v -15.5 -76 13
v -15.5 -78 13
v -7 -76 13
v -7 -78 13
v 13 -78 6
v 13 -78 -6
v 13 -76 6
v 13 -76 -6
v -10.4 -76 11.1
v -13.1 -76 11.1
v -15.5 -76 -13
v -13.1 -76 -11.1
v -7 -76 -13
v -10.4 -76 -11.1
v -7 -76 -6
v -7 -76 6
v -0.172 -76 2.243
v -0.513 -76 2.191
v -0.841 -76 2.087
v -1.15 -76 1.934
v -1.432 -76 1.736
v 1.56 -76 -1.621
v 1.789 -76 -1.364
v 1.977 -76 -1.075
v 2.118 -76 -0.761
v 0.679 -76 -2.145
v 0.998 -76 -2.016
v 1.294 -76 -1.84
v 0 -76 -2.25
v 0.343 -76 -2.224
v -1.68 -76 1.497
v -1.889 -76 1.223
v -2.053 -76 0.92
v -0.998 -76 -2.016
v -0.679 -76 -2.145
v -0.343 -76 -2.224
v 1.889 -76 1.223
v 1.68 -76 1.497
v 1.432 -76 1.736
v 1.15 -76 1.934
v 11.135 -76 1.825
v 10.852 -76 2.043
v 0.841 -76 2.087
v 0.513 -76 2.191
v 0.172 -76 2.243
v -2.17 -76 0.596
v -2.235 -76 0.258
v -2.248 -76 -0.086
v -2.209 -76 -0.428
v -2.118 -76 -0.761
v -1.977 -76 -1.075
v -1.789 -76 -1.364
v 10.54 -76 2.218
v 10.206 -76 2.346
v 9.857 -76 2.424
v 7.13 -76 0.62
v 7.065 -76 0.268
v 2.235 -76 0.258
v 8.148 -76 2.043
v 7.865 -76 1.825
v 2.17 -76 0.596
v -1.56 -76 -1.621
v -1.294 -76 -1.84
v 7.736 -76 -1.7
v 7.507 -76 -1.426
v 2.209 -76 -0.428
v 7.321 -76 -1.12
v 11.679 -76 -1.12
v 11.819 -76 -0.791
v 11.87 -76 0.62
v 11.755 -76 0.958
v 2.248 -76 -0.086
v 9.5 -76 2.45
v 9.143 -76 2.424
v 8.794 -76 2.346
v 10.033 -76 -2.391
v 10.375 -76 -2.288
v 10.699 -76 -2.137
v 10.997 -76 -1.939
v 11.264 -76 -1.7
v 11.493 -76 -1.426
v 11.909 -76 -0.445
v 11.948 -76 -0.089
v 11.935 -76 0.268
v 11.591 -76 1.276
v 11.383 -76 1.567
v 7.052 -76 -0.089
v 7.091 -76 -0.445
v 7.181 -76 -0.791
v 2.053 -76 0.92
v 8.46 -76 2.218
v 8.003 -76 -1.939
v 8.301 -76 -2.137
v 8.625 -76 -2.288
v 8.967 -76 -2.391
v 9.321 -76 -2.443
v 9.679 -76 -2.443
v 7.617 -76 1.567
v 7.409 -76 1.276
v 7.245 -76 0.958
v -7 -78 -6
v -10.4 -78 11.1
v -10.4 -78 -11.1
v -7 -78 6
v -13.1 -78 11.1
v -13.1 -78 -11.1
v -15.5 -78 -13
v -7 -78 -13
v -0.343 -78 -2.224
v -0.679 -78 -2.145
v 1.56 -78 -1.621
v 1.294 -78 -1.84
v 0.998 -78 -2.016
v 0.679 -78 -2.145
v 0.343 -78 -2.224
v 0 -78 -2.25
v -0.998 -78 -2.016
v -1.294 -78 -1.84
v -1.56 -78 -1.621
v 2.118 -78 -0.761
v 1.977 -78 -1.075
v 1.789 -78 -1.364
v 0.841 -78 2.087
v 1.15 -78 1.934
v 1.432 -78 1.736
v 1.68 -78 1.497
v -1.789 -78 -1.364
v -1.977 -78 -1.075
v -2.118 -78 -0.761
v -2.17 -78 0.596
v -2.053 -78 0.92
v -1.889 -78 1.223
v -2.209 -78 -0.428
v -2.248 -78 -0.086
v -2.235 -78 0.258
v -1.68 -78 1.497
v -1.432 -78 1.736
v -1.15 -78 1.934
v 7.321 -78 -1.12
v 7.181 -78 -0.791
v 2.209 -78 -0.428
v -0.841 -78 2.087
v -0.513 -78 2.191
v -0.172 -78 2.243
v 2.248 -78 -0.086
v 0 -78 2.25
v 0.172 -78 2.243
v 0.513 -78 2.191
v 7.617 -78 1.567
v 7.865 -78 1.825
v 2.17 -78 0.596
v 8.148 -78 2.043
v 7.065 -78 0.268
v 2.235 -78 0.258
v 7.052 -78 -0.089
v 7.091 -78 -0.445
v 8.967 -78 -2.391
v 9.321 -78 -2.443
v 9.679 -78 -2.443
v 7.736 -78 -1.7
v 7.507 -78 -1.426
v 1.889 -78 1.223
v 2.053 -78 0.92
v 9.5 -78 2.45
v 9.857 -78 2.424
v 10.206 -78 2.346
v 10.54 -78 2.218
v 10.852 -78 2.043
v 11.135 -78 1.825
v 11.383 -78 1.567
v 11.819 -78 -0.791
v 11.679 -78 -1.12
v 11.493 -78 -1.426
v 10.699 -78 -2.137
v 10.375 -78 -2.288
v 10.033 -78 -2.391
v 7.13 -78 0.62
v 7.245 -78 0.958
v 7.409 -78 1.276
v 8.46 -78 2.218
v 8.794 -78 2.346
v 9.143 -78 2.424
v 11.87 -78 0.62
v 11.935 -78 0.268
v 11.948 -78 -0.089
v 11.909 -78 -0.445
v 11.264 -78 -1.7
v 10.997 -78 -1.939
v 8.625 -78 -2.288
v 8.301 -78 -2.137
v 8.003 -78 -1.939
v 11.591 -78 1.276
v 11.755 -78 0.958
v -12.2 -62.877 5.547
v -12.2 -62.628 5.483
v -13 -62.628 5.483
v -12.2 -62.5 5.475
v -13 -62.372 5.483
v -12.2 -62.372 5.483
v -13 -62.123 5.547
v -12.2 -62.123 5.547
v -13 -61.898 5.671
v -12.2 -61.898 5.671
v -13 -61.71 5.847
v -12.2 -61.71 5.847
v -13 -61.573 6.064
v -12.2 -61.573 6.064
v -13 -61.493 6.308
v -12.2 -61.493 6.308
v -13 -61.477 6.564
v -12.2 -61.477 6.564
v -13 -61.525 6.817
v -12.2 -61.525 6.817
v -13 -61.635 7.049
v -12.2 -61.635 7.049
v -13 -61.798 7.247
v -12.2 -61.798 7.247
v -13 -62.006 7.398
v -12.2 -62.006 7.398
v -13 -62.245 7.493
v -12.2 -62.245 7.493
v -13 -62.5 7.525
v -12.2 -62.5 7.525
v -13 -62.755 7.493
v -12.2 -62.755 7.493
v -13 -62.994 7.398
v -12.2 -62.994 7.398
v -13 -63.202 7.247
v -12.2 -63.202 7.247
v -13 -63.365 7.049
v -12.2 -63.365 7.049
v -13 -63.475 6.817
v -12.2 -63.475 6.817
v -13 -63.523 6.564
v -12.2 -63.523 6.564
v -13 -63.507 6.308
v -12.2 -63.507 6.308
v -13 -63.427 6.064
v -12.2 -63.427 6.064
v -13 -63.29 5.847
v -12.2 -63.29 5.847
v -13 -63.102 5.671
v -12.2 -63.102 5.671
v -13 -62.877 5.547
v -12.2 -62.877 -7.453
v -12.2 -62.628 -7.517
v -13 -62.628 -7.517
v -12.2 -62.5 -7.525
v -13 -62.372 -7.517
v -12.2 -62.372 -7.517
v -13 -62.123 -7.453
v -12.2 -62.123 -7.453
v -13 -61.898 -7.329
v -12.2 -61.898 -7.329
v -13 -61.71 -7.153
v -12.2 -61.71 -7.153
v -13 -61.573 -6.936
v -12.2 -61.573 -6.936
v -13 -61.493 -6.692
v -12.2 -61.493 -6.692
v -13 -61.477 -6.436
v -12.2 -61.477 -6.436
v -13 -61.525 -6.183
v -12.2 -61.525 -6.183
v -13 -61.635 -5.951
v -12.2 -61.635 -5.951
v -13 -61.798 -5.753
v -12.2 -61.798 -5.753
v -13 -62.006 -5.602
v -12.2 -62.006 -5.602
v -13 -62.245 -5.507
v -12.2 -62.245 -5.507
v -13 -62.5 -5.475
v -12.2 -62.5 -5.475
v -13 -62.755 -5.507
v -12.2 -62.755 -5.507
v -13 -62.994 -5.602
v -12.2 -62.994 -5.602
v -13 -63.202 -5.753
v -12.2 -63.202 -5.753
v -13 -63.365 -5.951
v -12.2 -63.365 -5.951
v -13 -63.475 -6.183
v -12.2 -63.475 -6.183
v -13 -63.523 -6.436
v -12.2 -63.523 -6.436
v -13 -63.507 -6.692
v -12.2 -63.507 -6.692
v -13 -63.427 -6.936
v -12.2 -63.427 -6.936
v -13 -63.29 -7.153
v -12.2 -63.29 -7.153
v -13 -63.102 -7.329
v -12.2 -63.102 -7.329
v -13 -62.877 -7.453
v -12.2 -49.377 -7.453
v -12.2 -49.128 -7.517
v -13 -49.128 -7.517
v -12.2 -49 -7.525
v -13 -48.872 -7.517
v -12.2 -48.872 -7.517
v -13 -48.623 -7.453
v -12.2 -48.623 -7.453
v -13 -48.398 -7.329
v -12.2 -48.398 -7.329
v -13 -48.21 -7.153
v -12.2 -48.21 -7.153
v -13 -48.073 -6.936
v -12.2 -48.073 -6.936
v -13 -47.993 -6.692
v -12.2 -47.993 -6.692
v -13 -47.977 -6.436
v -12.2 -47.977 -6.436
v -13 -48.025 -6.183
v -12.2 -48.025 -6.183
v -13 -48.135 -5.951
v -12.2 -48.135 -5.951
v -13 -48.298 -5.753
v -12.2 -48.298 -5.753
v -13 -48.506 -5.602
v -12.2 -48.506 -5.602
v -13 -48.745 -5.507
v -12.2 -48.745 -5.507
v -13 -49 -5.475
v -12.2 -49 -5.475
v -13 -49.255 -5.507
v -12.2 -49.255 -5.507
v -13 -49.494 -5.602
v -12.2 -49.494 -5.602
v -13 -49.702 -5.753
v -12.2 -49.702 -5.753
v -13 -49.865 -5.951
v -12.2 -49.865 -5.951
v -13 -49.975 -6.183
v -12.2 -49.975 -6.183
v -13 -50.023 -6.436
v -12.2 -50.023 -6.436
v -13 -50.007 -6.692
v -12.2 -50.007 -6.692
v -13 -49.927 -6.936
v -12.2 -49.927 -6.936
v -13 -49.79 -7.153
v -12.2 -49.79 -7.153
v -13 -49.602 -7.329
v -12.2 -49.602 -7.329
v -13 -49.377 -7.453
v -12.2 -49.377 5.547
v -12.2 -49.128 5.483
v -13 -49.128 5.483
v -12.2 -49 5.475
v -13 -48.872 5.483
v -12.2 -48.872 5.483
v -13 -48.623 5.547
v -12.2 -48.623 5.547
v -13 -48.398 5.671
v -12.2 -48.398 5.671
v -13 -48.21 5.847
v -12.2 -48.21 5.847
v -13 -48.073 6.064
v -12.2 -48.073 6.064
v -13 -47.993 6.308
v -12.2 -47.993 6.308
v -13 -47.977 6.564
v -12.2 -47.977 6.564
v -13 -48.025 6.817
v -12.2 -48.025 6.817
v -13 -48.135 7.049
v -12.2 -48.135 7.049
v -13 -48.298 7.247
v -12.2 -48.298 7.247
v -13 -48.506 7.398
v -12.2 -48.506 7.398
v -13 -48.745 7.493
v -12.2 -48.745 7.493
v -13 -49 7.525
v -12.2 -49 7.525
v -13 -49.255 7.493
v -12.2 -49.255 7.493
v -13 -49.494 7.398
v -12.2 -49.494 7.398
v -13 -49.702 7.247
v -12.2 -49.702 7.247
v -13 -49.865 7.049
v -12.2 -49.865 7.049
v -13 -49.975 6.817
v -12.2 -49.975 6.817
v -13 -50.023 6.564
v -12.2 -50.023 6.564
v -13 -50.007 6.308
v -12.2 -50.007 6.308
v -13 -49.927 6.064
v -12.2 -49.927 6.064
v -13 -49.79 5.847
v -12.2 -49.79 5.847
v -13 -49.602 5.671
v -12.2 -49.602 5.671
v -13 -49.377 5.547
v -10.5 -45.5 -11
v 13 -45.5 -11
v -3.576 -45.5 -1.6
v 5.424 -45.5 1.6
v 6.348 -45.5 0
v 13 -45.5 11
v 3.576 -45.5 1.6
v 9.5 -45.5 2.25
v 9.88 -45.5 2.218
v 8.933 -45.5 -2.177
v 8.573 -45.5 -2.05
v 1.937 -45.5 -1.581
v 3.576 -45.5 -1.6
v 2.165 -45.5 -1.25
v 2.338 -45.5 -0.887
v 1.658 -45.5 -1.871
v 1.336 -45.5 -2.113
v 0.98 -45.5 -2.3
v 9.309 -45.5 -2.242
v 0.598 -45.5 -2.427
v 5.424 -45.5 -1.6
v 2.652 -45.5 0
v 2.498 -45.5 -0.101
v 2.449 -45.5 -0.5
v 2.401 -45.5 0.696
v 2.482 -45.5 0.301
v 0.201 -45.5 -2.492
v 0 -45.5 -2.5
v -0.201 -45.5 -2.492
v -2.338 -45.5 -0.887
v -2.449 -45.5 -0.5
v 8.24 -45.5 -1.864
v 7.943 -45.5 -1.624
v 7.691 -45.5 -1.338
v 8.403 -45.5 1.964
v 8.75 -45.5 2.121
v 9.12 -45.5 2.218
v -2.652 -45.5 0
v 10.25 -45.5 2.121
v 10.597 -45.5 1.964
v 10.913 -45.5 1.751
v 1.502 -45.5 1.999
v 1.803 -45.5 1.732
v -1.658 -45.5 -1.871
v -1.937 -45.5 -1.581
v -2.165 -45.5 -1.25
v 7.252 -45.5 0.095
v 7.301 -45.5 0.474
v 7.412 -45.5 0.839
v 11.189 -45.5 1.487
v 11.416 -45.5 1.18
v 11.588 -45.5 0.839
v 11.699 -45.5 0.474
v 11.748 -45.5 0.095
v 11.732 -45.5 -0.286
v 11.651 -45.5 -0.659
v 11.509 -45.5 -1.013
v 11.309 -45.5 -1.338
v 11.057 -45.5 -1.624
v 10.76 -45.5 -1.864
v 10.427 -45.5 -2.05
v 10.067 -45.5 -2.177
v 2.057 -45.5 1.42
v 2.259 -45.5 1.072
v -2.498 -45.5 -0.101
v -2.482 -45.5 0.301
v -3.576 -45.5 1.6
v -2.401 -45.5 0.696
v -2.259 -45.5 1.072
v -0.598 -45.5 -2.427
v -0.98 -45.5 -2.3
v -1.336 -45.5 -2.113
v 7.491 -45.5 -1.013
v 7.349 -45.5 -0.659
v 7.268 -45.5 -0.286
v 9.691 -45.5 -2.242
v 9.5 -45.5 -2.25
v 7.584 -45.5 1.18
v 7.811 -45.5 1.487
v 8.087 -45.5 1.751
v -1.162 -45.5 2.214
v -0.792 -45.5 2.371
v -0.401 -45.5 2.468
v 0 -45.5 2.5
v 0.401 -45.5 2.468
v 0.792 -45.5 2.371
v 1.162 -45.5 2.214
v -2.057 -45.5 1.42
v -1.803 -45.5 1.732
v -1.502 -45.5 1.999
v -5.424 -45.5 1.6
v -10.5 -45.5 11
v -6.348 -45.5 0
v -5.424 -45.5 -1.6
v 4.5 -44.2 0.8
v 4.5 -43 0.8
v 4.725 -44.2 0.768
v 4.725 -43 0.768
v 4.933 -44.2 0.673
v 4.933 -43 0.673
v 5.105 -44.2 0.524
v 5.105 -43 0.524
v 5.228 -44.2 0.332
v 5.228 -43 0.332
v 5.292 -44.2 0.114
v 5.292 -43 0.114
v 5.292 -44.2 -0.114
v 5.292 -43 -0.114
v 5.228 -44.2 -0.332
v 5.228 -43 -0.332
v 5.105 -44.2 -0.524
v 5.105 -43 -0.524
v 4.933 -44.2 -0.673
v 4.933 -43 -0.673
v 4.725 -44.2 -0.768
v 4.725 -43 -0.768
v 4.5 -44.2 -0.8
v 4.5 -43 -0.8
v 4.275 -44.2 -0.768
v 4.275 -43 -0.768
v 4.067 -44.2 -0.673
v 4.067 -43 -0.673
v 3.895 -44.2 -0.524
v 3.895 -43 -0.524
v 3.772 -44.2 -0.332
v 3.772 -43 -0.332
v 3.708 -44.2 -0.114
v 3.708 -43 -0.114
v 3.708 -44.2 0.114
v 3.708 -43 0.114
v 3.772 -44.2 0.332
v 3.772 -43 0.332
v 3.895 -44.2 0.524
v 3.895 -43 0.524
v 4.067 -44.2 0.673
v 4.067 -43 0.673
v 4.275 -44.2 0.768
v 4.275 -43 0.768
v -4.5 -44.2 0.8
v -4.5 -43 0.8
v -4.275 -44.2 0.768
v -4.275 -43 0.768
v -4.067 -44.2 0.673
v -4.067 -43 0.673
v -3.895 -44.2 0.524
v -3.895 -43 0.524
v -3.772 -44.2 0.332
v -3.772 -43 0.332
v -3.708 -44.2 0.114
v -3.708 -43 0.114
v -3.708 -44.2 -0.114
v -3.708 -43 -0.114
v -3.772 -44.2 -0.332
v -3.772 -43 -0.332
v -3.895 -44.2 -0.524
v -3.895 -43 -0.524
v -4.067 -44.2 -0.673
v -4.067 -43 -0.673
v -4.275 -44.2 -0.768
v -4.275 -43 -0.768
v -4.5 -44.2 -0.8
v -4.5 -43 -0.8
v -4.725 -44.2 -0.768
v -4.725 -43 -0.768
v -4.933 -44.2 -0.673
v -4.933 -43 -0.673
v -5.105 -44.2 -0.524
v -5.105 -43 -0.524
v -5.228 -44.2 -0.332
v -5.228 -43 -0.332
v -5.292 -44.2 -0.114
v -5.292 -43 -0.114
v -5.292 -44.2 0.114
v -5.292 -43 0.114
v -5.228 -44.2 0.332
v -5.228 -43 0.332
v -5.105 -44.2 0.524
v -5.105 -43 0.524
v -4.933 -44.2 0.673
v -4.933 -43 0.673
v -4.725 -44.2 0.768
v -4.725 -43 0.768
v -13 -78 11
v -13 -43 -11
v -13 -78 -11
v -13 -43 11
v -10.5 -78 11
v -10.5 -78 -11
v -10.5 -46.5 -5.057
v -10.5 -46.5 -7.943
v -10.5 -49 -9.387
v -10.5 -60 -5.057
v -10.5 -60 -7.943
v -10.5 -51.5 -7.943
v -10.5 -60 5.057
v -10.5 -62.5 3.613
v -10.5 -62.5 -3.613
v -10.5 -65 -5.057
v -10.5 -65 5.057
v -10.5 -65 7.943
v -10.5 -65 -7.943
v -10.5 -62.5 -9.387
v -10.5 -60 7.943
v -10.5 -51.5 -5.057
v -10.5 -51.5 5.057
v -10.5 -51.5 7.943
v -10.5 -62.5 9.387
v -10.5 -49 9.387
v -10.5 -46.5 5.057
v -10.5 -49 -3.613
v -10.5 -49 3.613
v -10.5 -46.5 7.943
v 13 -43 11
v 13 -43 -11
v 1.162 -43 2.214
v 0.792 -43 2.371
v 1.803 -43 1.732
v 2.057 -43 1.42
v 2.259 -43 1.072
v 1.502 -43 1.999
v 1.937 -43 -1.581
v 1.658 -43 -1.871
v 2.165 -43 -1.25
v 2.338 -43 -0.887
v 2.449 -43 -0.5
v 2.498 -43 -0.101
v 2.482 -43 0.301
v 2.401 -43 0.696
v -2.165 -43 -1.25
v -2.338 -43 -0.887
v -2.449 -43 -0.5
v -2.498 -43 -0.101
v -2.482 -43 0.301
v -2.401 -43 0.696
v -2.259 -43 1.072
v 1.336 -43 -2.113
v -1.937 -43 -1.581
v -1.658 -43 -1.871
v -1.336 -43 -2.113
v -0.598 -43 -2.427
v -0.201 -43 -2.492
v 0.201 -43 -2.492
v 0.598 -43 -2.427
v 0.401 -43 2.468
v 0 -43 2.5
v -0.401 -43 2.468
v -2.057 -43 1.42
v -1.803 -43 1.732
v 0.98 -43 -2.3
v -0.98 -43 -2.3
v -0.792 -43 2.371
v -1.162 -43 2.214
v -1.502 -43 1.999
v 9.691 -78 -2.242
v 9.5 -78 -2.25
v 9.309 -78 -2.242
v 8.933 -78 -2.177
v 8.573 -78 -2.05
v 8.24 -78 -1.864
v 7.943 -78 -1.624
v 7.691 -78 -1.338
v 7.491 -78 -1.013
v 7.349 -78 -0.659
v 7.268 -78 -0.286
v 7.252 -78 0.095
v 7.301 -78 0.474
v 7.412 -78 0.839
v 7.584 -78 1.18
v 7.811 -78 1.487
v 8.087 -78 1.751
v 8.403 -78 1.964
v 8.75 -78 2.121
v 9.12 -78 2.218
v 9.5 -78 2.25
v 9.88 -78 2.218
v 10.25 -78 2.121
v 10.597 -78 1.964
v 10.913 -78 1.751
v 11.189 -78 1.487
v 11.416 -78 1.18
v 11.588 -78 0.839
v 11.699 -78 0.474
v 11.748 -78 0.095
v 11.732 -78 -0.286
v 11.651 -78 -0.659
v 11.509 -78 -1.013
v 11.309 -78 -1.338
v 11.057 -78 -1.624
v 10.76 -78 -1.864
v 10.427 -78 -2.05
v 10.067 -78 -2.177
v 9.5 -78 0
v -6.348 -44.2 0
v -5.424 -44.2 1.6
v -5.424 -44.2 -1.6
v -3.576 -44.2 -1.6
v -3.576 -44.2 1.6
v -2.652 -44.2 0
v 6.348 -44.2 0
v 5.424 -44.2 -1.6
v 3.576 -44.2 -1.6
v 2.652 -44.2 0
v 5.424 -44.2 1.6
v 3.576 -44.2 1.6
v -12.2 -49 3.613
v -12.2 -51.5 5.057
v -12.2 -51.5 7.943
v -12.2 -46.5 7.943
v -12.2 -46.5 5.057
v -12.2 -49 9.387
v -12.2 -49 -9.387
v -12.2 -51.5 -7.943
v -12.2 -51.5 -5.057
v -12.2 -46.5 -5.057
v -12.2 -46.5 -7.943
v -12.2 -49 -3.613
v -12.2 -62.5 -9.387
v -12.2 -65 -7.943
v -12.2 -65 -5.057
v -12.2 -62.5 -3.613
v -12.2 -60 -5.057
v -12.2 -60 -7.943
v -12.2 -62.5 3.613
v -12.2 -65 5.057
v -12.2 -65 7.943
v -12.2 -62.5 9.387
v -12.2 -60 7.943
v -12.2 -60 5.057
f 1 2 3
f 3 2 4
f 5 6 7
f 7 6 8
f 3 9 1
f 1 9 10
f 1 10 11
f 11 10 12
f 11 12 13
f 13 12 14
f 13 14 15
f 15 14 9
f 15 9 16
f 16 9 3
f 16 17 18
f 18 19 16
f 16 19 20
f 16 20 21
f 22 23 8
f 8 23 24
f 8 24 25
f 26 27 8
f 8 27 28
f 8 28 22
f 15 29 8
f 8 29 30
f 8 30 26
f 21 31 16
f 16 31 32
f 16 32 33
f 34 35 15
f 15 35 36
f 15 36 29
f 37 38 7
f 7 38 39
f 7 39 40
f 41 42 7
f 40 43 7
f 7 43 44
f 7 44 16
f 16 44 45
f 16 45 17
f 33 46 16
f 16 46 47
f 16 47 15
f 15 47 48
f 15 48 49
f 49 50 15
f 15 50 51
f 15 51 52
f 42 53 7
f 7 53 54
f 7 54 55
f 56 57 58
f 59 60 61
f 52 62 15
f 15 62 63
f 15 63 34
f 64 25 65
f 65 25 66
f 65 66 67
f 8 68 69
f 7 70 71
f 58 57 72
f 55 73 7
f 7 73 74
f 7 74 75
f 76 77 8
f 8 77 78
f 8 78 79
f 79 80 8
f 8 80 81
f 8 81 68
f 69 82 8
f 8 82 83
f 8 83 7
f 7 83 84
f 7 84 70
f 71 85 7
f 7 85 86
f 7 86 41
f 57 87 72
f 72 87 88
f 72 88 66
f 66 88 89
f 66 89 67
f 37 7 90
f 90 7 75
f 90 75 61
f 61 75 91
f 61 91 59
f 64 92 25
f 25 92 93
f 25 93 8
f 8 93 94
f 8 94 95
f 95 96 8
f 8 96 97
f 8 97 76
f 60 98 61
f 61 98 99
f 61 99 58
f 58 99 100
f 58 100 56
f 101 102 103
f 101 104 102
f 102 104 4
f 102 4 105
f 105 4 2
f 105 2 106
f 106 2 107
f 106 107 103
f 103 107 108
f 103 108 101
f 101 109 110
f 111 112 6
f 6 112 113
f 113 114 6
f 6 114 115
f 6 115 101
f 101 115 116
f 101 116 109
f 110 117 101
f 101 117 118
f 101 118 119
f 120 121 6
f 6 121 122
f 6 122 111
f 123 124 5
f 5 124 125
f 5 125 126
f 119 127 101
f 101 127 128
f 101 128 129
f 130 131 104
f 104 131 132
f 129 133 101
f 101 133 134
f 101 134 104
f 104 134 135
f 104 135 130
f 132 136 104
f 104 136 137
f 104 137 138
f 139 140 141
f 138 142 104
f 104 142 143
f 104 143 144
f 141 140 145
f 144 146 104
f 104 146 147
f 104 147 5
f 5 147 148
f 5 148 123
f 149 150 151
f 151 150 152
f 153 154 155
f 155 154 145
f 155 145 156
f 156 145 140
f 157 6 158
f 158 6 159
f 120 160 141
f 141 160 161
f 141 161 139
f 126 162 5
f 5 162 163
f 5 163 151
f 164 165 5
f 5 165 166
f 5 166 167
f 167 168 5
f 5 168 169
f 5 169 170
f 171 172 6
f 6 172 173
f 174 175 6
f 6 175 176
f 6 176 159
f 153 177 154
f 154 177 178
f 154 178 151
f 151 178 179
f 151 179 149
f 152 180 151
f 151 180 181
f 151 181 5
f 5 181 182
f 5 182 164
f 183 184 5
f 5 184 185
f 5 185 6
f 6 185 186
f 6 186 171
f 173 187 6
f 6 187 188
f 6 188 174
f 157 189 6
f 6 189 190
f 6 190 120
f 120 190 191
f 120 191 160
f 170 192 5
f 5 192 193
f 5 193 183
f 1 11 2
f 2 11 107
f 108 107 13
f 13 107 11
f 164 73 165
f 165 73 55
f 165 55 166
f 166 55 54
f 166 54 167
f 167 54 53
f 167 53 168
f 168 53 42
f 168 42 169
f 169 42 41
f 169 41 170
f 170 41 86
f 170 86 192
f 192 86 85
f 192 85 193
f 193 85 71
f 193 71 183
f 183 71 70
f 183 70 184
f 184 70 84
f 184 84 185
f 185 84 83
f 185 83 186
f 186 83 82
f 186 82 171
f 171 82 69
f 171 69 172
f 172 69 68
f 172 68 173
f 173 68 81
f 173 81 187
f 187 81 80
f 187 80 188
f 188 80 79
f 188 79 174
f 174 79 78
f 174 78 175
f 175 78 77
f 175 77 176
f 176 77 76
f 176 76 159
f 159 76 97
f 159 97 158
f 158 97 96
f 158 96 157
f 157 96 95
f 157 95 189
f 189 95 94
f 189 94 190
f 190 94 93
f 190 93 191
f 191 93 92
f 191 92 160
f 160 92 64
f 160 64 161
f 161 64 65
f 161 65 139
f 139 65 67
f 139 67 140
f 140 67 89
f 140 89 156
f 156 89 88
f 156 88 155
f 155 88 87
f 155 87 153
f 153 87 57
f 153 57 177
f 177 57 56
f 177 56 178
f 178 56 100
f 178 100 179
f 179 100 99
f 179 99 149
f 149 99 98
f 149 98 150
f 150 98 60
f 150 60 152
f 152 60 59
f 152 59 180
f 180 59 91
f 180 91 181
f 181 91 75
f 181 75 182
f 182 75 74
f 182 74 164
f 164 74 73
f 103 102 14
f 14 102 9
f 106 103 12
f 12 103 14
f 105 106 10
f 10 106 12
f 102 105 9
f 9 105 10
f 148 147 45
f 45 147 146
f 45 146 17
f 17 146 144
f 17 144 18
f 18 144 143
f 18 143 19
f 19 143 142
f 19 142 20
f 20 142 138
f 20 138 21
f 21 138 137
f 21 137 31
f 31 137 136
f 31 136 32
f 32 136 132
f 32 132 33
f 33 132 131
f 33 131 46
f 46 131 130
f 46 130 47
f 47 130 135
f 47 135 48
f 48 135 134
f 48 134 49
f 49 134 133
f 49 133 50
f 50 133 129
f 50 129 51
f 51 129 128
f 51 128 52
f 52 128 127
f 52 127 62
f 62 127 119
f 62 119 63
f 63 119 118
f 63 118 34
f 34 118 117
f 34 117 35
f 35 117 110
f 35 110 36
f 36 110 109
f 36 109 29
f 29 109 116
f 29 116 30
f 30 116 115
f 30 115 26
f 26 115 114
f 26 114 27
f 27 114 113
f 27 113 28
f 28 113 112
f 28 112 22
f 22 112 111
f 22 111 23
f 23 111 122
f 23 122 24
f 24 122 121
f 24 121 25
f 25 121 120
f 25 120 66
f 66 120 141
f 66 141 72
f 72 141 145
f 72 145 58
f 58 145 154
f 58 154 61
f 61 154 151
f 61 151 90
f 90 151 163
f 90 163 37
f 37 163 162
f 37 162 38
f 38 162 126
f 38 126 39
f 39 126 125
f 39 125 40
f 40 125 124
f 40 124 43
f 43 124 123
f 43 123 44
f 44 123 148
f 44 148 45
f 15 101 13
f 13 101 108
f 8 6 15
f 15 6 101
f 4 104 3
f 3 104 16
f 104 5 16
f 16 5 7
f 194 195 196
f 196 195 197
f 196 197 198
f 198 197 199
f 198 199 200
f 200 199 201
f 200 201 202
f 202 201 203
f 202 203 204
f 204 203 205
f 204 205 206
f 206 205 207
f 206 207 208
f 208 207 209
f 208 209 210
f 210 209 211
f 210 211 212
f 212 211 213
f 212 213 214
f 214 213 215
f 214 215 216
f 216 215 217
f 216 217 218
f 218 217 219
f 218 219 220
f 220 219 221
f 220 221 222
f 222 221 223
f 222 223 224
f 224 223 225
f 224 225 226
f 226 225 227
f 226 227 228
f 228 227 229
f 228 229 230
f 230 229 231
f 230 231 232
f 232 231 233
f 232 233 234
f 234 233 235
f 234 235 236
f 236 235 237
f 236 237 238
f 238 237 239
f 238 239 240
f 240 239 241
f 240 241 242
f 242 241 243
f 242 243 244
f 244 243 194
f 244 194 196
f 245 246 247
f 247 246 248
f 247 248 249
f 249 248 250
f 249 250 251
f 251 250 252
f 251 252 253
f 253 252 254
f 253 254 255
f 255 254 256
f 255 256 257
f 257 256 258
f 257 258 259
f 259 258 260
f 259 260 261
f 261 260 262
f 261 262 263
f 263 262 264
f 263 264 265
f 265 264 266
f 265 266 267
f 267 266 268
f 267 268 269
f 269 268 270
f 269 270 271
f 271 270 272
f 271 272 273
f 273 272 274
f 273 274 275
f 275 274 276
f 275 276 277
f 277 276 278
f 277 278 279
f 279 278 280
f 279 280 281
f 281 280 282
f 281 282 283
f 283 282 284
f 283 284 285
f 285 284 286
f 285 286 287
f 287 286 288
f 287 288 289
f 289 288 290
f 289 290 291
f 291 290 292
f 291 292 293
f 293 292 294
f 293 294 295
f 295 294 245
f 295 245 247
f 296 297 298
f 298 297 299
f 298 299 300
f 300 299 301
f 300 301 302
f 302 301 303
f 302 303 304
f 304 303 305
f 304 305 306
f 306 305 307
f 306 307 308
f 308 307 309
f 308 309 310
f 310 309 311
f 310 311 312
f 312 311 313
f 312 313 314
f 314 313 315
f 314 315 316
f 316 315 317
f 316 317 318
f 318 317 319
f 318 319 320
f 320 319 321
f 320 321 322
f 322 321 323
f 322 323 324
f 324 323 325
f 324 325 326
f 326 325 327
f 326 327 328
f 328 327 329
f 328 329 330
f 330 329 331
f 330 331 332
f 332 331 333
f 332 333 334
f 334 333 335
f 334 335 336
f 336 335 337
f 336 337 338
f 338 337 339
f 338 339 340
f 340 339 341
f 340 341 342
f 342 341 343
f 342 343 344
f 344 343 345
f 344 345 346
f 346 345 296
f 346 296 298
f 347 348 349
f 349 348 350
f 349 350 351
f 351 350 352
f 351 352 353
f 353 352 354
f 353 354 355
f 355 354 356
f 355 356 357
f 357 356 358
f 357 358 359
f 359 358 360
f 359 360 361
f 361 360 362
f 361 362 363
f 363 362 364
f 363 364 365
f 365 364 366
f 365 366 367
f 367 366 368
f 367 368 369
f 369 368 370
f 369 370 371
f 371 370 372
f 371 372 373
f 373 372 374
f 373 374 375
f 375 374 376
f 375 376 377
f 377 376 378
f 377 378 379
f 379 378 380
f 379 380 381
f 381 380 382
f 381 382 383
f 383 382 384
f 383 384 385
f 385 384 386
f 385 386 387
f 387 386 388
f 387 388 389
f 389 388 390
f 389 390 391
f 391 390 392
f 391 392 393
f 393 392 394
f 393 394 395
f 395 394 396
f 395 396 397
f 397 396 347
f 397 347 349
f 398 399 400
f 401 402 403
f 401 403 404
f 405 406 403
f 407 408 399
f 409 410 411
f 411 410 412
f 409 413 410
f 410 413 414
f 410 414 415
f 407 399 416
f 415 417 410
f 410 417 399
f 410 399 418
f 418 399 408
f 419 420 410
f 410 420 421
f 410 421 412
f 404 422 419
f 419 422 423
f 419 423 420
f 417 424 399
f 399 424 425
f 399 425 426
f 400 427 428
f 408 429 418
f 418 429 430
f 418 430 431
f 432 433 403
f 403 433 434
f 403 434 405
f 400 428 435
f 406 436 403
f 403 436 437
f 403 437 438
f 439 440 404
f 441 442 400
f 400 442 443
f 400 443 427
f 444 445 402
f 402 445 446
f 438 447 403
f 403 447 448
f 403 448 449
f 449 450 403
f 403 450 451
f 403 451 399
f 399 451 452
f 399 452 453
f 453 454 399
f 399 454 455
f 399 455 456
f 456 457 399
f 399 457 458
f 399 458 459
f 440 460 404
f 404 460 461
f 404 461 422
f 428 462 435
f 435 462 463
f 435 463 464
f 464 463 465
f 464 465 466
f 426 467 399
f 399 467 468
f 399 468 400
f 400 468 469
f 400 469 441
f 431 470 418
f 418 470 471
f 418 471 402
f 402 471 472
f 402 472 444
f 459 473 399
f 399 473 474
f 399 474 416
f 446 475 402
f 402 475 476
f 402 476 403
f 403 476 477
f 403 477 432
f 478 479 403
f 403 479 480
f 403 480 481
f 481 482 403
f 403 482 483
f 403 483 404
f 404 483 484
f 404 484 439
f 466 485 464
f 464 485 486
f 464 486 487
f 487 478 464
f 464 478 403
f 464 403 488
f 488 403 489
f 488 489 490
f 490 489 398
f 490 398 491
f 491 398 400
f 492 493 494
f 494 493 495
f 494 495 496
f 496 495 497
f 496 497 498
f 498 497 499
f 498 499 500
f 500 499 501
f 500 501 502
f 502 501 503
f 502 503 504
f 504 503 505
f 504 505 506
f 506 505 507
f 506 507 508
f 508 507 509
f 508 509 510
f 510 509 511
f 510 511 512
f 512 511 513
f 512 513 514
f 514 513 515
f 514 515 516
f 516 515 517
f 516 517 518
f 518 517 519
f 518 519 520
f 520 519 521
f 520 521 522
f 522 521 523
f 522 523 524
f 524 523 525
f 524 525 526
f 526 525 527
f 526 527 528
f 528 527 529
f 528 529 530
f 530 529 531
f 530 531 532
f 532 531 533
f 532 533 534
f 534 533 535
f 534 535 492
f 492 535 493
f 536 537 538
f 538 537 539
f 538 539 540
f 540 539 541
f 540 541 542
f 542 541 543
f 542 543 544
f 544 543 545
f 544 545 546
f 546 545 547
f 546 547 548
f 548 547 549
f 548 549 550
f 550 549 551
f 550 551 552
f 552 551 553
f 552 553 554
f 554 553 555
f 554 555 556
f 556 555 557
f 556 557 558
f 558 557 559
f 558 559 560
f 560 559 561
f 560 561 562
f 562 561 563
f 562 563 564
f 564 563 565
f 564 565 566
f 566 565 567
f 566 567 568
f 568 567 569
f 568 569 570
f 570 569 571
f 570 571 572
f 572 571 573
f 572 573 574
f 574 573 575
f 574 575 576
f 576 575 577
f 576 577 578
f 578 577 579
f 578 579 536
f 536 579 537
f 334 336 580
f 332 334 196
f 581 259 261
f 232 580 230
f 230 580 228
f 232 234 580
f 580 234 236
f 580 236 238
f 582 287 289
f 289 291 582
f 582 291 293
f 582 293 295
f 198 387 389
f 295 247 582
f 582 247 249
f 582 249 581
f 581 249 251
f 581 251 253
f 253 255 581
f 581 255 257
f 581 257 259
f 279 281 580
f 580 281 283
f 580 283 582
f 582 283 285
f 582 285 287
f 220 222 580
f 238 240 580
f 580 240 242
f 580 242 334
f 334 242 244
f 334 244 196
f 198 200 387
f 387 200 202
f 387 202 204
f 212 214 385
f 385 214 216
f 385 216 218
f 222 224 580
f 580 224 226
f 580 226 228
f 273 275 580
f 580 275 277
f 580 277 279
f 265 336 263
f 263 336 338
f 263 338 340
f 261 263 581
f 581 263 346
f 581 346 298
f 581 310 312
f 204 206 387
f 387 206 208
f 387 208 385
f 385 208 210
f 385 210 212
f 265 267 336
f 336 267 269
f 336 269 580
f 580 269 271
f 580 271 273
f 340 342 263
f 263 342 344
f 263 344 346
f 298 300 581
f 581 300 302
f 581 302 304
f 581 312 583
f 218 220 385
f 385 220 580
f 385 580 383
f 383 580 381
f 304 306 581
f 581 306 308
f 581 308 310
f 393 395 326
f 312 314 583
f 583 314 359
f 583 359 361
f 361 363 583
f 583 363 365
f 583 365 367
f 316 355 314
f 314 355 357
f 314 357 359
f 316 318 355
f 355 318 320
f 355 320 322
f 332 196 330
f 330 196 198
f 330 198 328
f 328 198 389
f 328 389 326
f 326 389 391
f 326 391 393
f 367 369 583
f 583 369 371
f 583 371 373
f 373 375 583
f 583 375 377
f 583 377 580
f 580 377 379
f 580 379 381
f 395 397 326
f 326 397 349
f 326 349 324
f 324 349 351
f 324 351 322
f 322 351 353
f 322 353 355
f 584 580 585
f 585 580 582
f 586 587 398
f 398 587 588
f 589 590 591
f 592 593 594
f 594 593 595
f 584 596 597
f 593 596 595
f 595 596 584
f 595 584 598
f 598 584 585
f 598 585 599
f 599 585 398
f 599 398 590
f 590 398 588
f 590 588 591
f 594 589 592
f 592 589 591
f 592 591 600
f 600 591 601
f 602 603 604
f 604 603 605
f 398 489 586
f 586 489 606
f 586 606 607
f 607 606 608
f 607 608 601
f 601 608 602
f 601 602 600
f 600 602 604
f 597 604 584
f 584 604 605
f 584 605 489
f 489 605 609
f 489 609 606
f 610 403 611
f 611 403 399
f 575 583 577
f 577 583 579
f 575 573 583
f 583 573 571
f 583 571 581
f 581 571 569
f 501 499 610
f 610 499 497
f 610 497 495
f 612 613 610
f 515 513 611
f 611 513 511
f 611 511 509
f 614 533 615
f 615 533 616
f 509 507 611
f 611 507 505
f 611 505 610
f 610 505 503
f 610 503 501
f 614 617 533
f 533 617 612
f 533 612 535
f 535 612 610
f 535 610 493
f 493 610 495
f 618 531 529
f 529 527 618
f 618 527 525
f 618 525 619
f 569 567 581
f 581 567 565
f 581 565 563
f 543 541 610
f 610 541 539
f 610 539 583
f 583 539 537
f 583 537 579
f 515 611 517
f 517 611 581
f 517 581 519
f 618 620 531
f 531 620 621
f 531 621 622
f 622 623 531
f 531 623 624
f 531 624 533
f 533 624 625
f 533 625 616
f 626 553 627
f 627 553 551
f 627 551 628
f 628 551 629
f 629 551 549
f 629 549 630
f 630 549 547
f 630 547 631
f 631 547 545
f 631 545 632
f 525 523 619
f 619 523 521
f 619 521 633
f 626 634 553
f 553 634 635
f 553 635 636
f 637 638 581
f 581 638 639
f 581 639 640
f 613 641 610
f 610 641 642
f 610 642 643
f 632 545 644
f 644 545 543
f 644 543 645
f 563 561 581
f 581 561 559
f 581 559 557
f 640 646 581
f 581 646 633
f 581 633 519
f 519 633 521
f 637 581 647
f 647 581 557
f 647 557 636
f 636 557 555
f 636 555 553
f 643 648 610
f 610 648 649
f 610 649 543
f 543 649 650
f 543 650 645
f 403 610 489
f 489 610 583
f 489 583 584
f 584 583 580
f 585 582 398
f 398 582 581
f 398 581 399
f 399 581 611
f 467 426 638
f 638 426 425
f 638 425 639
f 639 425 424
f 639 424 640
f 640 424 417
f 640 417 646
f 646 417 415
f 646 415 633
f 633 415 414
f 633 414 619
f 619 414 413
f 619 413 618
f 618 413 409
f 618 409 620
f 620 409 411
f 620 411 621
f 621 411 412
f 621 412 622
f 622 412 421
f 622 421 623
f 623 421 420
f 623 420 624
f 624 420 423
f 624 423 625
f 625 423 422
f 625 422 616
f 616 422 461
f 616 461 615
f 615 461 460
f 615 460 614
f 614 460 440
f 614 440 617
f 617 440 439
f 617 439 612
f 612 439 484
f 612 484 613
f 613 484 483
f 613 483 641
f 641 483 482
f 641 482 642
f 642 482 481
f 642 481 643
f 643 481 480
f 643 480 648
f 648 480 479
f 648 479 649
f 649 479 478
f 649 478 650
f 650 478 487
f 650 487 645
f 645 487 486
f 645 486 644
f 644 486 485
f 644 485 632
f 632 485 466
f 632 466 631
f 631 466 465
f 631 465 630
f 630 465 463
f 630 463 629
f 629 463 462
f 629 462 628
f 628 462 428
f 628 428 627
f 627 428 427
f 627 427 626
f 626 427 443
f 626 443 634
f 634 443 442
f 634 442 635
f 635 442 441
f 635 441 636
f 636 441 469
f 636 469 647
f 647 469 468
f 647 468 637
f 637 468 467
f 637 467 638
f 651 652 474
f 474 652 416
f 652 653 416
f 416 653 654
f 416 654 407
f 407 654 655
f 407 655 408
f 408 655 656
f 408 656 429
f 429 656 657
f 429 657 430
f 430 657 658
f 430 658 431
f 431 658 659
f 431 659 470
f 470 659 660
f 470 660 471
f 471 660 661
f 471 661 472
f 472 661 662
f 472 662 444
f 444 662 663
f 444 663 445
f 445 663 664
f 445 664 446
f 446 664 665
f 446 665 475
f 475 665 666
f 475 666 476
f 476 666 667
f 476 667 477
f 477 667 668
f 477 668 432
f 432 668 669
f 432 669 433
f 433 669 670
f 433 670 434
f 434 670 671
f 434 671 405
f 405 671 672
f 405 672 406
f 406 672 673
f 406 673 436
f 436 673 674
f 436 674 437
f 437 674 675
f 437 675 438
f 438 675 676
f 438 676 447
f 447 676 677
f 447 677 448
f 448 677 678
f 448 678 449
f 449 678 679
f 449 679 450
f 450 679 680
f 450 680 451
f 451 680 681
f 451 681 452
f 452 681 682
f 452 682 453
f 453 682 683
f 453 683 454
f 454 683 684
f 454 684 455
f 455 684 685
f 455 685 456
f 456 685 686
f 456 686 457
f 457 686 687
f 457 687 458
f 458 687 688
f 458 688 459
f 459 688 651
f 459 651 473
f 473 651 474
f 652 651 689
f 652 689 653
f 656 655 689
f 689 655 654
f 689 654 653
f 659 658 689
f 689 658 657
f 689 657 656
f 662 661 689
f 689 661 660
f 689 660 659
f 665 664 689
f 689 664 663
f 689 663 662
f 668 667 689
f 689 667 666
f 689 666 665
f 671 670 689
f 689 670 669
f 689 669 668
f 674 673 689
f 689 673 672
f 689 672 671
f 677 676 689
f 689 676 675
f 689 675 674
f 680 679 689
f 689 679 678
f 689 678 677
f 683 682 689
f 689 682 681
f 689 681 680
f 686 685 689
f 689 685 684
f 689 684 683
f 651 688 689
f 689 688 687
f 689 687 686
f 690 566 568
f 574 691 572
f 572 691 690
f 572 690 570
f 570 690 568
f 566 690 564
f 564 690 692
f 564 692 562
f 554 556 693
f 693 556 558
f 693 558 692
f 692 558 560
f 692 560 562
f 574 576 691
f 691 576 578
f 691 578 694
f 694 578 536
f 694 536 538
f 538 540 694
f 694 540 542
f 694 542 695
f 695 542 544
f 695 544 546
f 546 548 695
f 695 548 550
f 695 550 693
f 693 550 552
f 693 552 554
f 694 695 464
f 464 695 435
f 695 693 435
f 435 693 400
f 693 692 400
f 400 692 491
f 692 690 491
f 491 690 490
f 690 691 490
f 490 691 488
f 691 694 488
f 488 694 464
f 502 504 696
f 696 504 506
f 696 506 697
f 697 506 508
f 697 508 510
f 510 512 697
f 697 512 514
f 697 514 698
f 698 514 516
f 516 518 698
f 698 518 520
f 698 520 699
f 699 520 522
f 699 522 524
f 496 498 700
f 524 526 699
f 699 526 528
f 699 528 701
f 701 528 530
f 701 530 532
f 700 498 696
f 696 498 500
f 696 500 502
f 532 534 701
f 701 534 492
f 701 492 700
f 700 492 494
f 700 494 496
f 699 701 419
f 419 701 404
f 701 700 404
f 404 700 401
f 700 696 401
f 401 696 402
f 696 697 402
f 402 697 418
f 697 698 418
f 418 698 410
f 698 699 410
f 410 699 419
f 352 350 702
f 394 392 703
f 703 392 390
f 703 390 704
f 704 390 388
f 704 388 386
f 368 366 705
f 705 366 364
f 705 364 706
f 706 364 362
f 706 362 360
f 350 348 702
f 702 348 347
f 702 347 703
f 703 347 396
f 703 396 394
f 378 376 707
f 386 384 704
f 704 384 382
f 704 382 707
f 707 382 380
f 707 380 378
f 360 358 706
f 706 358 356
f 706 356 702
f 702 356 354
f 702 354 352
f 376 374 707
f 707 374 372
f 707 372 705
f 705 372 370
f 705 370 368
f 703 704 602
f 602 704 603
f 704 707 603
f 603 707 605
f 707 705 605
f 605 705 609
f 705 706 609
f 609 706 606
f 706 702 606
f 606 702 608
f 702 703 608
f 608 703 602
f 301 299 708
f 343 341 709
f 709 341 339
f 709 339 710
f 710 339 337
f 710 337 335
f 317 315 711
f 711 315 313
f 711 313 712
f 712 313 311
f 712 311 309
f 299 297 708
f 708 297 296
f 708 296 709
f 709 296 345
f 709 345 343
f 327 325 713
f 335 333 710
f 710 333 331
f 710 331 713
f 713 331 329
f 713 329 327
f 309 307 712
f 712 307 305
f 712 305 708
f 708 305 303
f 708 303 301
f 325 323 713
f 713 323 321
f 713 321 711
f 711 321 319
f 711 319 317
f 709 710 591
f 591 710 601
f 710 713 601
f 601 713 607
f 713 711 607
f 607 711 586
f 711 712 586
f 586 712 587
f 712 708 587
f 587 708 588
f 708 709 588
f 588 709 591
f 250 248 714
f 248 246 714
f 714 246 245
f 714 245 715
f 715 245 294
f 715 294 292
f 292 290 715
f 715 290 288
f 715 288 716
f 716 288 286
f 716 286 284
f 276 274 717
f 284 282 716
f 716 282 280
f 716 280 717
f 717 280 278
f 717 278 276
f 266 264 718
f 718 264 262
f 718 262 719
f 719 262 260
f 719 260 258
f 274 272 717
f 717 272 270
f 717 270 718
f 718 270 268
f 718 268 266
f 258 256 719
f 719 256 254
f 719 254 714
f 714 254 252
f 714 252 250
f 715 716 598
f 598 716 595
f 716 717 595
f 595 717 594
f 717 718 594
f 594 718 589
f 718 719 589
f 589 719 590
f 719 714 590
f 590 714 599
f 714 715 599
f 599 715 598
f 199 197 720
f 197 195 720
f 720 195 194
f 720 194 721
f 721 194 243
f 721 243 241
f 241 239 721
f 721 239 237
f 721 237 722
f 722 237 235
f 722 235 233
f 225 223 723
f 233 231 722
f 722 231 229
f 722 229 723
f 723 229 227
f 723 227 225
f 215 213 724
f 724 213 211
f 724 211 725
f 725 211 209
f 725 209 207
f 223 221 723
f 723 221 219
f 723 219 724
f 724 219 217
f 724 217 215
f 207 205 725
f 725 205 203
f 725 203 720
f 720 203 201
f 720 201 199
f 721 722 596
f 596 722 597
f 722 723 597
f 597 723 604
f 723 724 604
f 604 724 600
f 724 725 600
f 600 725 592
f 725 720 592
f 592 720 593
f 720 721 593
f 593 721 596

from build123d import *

# Parameters (mm, degrees)
EXTRUDE_THIN1_DEPTH          = 11
SKETCH6_R                    = 2.5
CUT_EXTRUDE1_DEPTH           = 39.923000912
BOSS_EXTRUDE1_START          = -78
SUPPORT_R                    = 2.25
BOSS_EXTRUDE1_DEPTH          = 32.5
SKETCH8_W                    = 28.5
SKETCH8_H                    = 26
BOSS_EXTRUDE2_DEPTH          = 2
SKETCH9_R                    = 2.45
CUT_EXTRUDE2_DEPTH           = 39.707234466
SKETCH11_W                   = 2.7
SKETCH11_H                   = 22.2
CUT_EXTRUDE3_DEPTH           = 41.425858061
M2_5_TAPPED_HOLE1_AT_2_COUNT = 2
M2_5_TAPPED_HOLE1_AT_2_PITCH = 13
M2_5_TAPPED_HOLE1_AT_3_COUNT = 2
M2_5_TAPPED_HOLE1_AT_3_PITCH = 18.741664814
M2_5_TAPPED_HOLE1_AT_4_COUNT = 2
M2_5_TAPPED_HOLE1_AT_4_PITCH = 13.5
SKETCH13_R                   = 2.25
CUT_EXTRUDE4_DEPTH           = 2
CUT_EXTRUDE5_DEPTH           = 41.425858061
M2_TAPPED_HOLE1_AT_2_COUNT   = 2
M2_TAPPED_HOLE1_AT_2_PITCH   = 9
CUT_EXTRUDE6_DEPTH           = 1.3
CUT_EXTRUDE7_DEPTH           = 1.7
SKETCH_PATTERN1_START        = -12.2
SKETCH_PATTERN1_OUTLINE_R    = 1.025
SKETCH_PATTERN1_DEPTH        = 1.7


# Read off the part's stored shape, not the designer's step: Sketch-Pattern1
with BuildPart() as part:
    # Arm → Extrude-Thin1 (new, symmetric)
    with BuildSketch(Plane.XY):
        Polygon((13, -43), (-13, -43), (-13, -78), (-10.5, -78), (-10.5, -45.5), (13, -45.5), align=None)
    extrude(amount=EXTRUDE_THIN1_DEPTH, both=True)

    # Sketch6 → Cut-Extrude1 (cut, through all)
    with BuildSketch(Plane(origin=(0, -43, 0), x_dir=(1, 0, 0), z_dir=(0, 1, 0))):
        with Locations(Location((0, 0, 0), (0, 0, 270))):
            Circle(SKETCH6_R)
    extrude(amount=-CUT_EXTRUDE1_DEPTH, mode=Mode.SUBTRACT)

    # Support (on Top Plane) → Boss-Extrude1 (add)
    with BuildSketch(Plane(origin=(0, 0, 0), x_dir=(1, 0, 0), z_dir=(0, 1, 0)).offset(BOSS_EXTRUDE1_START)):
        with Locations(Location((9.5, 0, 0), (0, 0, 270))):
            Circle(SUPPORT_R)
    extrude(amount=BOSS_EXTRUDE1_DEPTH)

    # Sketch16 → M2.5 Tapped Hole1 (revolve, cut)
    with BuildSketch(Plane(origin=(-13, -49, 6.5), x_dir=(0, 0, 1), z_dir=(0, 1, 0))):
        Polygon((0, 0), (0, 6.965882135), (1.025, 6.35), (1.025, 0), align=None)
    m2_5_tapped_hole1 = revolve(axis=Axis((-19.35, -49, 6.5), (1, 0, 0)), mode=Mode.SUBTRACT)

    # M2.5 Tapped Hole1 at 2: M2.5 Tapped Hole1 ×2
    with Locations(*[(0, 0, -i * M2_5_TAPPED_HOLE1_AT_2_PITCH) for i in range(1, M2_5_TAPPED_HOLE1_AT_2_COUNT)]):
        add(m2_5_tapped_hole1, mode=Mode.SUBTRACT)

    # M2.5 Tapped Hole1 at 3: M2.5 Tapped Hole1 ×2
    with Locations(*[Vector(0, -0.720320213491481, -0.6936416870658707) * (i * M2_5_TAPPED_HOLE1_AT_3_PITCH) for i in range(1, M2_5_TAPPED_HOLE1_AT_3_COUNT)]):
        add(m2_5_tapped_hole1, mode=Mode.SUBTRACT)

    # M2.5 Tapped Hole1 at 4: M2.5 Tapped Hole1 ×2
    with Locations(*[(0, -i * M2_5_TAPPED_HOLE1_AT_4_PITCH, 0) for i in range(1, M2_5_TAPPED_HOLE1_AT_4_COUNT)]):
        add(m2_5_tapped_hole1, mode=Mode.SUBTRACT)

    # Sketch20 → M2 Tapped Hole1 (revolve, cut)
    with BuildSketch(Plane(origin=(4.5, -43, 0), x_dir=(0, 0, 1), z_dir=(1, 0, 0))):
        Polygon((0, 0), (0, 2.980688495), (0.8, 2.5), (0.8, 0), align=None)
    m2_tapped_hole1 = revolve(axis=Axis((4.5, -36.65, 0), (0, -1, 0)), mode=Mode.SUBTRACT)

    # M2 Tapped Hole1 at 2: M2 Tapped Hole1 ×2
    with Locations(*[(-i * M2_TAPPED_HOLE1_AT_2_PITCH, 0, 0) for i in range(1, M2_TAPPED_HOLE1_AT_2_COUNT)]):
        add(m2_tapped_hole1, mode=Mode.SUBTRACT)

    # Sketch21 → Cut-Extrude6 (cut)
    with BuildSketch(Plane.XZ.offset(45.5)):
        Polygon((-3.576239569, 1.6), (-5.423760431, 1.6), (-6.347520861, 0), (-5.423760431, -1.6), (-3.576239569, -1.6), (-2.652479139, 0), align=None)
    cut_extrude6 = extrude(amount=-CUT_EXTRUDE6_DEPTH, mode=Mode.SUBTRACT)

    # Mirror2: Cut-Extrude6 across plane
    add(cut_extrude6.mirror(Plane(origin=(0, 0, 0), x_dir=(0, 0, 1), z_dir=(1, 0, 0))), mode=Mode.SUBTRACT)

    # Sketch22 → Cut-Extrude7 (cut)
    with BuildSketch(Plane(origin=(-10.5, 0, 0), x_dir=(0, 0, -1), z_dir=(1, 0, 0))):
        Polygon((-5.056624327, -51.5), (-3.613248654, -49), (-5.056624327, -46.5), (-7.943375673, -46.5), (-9.386751346, -49), (-7.943375673, -51.5), align=None)
    extrude(amount=-CUT_EXTRUDE7_DEPTH, mode=Mode.SUBTRACT)

    # Sketch-Pattern1 outline → Sketch-Pattern1 (cut)
    # profile 1 of 3: a face of its own
    with BuildSketch(Plane.YZ.offset(SKETCH_PATTERN1_START)):
        Polygon((-49, -3.613248654), (-51.5, -5.056624327), (-51.5, -7.943375673), (-49, -9.386751346), (-46.5, -7.943375673), (-46.5, -5.056624327), align=None)
        with Locations((-49, -6.5)):
            Circle(SKETCH_PATTERN1_OUTLINE_R, mode=Mode.SUBTRACT)
    # profile 2 of 3: a face of its own
    with BuildSketch(Plane.YZ.offset(SKETCH_PATTERN1_START)):
        Polygon((-62.5, -3.613248654), (-65, -5.056624327), (-65, -7.943375673), (-62.5, -9.386751346), (-60, -7.943375673), (-60, -5.056624327), align=None)
        with Locations((-62.5, -6.5)):
            Circle(SKETCH_PATTERN1_OUTLINE_R, mode=Mode.SUBTRACT)
    # profile 3 of 3: a face of its own
    with BuildSketch(Plane.YZ.offset(SKETCH_PATTERN1_START)):
        Polygon((-62.5, 9.386751346), (-65, 7.943375673), (-65, 5.056624327), (-62.5, 3.613248654), (-60, 5.056624327), (-60, 7.943375673), align=None)
        with Locations((-62.5, 6.5)):
            Circle(SKETCH_PATTERN1_OUTLINE_R, mode=Mode.SUBTRACT)
    extrude(amount=SKETCH_PATTERN1_DEPTH, mode=Mode.SUBTRACT)


with BuildPart() as body_2:
    # Sketch8 → Boss-Extrude2 (new body)
    with BuildSketch(Plane(origin=(0, -78, 0), x_dir=(1, 0, 0), z_dir=(0, 1, 0))):
        with Locations((-1.25, 0)):
            Rectangle(SKETCH8_W, SKETCH8_H)
    extrude(amount=BOSS_EXTRUDE2_DEPTH)

    # Sketch9 → Cut-Extrude2 (cut, through all)
    with BuildSketch(Plane(origin=(0, -76, 0), x_dir=(1, 0, 0), z_dir=(0, 1, 0))):
        with Locations(Location((9.5, 0, 0), (0, 0, 270))):
            Circle(SKETCH9_R)
    extrude(amount=-CUT_EXTRUDE2_DEPTH, mode=Mode.SUBTRACT)

    # Sketch11 → Cut-Extrude3 (cut, through all)
    with BuildSketch(Plane(origin=(0, -78, 0), x_dir=(1, 0, 0), z_dir=(0, 1, 0))):
        with Locations((-11.75, 0)):
            Rectangle(SKETCH11_W, SKETCH11_H)
    extrude(amount=CUT_EXTRUDE3_DEPTH, mode=Mode.SUBTRACT)

    # Sketch13 → Cut-Extrude4 (cut)
    with BuildSketch(Plane(origin=(0, -78, 0), x_dir=(1, 0, 0), z_dir=(0, 1, 0))):
        with Locations(Location((0, 0, 0), (0, 0, 90))):
            Circle(SKETCH13_R)
    extrude(amount=CUT_EXTRUDE4_DEPTH, mode=Mode.SUBTRACT)

    # Sketch17 → Cut-Extrude5 (cut, symmetric)
    with BuildSketch(Plane(origin=(0, -78, 0), x_dir=(1, 0, 0), z_dir=(0, 1, 0))):
        Polygon((-7, 91.505474234), (-7, 13), (-7, 6), (13, 6), (91.505474234, 6), (194.428862648, 124.571556691), (95.923388414, 210.077030925), align=None)
    cut_extrude5 = extrude(amount=CUT_EXTRUDE5_DEPTH, both=True, mode=Mode.SUBTRACT)

    # Mirror1: Cut-Extrude5 across plane
    add(cut_extrude5.mirror(Plane.XY), mode=Mode.SUBTRACT)


solid = Compound([part.part, body_2.part])
